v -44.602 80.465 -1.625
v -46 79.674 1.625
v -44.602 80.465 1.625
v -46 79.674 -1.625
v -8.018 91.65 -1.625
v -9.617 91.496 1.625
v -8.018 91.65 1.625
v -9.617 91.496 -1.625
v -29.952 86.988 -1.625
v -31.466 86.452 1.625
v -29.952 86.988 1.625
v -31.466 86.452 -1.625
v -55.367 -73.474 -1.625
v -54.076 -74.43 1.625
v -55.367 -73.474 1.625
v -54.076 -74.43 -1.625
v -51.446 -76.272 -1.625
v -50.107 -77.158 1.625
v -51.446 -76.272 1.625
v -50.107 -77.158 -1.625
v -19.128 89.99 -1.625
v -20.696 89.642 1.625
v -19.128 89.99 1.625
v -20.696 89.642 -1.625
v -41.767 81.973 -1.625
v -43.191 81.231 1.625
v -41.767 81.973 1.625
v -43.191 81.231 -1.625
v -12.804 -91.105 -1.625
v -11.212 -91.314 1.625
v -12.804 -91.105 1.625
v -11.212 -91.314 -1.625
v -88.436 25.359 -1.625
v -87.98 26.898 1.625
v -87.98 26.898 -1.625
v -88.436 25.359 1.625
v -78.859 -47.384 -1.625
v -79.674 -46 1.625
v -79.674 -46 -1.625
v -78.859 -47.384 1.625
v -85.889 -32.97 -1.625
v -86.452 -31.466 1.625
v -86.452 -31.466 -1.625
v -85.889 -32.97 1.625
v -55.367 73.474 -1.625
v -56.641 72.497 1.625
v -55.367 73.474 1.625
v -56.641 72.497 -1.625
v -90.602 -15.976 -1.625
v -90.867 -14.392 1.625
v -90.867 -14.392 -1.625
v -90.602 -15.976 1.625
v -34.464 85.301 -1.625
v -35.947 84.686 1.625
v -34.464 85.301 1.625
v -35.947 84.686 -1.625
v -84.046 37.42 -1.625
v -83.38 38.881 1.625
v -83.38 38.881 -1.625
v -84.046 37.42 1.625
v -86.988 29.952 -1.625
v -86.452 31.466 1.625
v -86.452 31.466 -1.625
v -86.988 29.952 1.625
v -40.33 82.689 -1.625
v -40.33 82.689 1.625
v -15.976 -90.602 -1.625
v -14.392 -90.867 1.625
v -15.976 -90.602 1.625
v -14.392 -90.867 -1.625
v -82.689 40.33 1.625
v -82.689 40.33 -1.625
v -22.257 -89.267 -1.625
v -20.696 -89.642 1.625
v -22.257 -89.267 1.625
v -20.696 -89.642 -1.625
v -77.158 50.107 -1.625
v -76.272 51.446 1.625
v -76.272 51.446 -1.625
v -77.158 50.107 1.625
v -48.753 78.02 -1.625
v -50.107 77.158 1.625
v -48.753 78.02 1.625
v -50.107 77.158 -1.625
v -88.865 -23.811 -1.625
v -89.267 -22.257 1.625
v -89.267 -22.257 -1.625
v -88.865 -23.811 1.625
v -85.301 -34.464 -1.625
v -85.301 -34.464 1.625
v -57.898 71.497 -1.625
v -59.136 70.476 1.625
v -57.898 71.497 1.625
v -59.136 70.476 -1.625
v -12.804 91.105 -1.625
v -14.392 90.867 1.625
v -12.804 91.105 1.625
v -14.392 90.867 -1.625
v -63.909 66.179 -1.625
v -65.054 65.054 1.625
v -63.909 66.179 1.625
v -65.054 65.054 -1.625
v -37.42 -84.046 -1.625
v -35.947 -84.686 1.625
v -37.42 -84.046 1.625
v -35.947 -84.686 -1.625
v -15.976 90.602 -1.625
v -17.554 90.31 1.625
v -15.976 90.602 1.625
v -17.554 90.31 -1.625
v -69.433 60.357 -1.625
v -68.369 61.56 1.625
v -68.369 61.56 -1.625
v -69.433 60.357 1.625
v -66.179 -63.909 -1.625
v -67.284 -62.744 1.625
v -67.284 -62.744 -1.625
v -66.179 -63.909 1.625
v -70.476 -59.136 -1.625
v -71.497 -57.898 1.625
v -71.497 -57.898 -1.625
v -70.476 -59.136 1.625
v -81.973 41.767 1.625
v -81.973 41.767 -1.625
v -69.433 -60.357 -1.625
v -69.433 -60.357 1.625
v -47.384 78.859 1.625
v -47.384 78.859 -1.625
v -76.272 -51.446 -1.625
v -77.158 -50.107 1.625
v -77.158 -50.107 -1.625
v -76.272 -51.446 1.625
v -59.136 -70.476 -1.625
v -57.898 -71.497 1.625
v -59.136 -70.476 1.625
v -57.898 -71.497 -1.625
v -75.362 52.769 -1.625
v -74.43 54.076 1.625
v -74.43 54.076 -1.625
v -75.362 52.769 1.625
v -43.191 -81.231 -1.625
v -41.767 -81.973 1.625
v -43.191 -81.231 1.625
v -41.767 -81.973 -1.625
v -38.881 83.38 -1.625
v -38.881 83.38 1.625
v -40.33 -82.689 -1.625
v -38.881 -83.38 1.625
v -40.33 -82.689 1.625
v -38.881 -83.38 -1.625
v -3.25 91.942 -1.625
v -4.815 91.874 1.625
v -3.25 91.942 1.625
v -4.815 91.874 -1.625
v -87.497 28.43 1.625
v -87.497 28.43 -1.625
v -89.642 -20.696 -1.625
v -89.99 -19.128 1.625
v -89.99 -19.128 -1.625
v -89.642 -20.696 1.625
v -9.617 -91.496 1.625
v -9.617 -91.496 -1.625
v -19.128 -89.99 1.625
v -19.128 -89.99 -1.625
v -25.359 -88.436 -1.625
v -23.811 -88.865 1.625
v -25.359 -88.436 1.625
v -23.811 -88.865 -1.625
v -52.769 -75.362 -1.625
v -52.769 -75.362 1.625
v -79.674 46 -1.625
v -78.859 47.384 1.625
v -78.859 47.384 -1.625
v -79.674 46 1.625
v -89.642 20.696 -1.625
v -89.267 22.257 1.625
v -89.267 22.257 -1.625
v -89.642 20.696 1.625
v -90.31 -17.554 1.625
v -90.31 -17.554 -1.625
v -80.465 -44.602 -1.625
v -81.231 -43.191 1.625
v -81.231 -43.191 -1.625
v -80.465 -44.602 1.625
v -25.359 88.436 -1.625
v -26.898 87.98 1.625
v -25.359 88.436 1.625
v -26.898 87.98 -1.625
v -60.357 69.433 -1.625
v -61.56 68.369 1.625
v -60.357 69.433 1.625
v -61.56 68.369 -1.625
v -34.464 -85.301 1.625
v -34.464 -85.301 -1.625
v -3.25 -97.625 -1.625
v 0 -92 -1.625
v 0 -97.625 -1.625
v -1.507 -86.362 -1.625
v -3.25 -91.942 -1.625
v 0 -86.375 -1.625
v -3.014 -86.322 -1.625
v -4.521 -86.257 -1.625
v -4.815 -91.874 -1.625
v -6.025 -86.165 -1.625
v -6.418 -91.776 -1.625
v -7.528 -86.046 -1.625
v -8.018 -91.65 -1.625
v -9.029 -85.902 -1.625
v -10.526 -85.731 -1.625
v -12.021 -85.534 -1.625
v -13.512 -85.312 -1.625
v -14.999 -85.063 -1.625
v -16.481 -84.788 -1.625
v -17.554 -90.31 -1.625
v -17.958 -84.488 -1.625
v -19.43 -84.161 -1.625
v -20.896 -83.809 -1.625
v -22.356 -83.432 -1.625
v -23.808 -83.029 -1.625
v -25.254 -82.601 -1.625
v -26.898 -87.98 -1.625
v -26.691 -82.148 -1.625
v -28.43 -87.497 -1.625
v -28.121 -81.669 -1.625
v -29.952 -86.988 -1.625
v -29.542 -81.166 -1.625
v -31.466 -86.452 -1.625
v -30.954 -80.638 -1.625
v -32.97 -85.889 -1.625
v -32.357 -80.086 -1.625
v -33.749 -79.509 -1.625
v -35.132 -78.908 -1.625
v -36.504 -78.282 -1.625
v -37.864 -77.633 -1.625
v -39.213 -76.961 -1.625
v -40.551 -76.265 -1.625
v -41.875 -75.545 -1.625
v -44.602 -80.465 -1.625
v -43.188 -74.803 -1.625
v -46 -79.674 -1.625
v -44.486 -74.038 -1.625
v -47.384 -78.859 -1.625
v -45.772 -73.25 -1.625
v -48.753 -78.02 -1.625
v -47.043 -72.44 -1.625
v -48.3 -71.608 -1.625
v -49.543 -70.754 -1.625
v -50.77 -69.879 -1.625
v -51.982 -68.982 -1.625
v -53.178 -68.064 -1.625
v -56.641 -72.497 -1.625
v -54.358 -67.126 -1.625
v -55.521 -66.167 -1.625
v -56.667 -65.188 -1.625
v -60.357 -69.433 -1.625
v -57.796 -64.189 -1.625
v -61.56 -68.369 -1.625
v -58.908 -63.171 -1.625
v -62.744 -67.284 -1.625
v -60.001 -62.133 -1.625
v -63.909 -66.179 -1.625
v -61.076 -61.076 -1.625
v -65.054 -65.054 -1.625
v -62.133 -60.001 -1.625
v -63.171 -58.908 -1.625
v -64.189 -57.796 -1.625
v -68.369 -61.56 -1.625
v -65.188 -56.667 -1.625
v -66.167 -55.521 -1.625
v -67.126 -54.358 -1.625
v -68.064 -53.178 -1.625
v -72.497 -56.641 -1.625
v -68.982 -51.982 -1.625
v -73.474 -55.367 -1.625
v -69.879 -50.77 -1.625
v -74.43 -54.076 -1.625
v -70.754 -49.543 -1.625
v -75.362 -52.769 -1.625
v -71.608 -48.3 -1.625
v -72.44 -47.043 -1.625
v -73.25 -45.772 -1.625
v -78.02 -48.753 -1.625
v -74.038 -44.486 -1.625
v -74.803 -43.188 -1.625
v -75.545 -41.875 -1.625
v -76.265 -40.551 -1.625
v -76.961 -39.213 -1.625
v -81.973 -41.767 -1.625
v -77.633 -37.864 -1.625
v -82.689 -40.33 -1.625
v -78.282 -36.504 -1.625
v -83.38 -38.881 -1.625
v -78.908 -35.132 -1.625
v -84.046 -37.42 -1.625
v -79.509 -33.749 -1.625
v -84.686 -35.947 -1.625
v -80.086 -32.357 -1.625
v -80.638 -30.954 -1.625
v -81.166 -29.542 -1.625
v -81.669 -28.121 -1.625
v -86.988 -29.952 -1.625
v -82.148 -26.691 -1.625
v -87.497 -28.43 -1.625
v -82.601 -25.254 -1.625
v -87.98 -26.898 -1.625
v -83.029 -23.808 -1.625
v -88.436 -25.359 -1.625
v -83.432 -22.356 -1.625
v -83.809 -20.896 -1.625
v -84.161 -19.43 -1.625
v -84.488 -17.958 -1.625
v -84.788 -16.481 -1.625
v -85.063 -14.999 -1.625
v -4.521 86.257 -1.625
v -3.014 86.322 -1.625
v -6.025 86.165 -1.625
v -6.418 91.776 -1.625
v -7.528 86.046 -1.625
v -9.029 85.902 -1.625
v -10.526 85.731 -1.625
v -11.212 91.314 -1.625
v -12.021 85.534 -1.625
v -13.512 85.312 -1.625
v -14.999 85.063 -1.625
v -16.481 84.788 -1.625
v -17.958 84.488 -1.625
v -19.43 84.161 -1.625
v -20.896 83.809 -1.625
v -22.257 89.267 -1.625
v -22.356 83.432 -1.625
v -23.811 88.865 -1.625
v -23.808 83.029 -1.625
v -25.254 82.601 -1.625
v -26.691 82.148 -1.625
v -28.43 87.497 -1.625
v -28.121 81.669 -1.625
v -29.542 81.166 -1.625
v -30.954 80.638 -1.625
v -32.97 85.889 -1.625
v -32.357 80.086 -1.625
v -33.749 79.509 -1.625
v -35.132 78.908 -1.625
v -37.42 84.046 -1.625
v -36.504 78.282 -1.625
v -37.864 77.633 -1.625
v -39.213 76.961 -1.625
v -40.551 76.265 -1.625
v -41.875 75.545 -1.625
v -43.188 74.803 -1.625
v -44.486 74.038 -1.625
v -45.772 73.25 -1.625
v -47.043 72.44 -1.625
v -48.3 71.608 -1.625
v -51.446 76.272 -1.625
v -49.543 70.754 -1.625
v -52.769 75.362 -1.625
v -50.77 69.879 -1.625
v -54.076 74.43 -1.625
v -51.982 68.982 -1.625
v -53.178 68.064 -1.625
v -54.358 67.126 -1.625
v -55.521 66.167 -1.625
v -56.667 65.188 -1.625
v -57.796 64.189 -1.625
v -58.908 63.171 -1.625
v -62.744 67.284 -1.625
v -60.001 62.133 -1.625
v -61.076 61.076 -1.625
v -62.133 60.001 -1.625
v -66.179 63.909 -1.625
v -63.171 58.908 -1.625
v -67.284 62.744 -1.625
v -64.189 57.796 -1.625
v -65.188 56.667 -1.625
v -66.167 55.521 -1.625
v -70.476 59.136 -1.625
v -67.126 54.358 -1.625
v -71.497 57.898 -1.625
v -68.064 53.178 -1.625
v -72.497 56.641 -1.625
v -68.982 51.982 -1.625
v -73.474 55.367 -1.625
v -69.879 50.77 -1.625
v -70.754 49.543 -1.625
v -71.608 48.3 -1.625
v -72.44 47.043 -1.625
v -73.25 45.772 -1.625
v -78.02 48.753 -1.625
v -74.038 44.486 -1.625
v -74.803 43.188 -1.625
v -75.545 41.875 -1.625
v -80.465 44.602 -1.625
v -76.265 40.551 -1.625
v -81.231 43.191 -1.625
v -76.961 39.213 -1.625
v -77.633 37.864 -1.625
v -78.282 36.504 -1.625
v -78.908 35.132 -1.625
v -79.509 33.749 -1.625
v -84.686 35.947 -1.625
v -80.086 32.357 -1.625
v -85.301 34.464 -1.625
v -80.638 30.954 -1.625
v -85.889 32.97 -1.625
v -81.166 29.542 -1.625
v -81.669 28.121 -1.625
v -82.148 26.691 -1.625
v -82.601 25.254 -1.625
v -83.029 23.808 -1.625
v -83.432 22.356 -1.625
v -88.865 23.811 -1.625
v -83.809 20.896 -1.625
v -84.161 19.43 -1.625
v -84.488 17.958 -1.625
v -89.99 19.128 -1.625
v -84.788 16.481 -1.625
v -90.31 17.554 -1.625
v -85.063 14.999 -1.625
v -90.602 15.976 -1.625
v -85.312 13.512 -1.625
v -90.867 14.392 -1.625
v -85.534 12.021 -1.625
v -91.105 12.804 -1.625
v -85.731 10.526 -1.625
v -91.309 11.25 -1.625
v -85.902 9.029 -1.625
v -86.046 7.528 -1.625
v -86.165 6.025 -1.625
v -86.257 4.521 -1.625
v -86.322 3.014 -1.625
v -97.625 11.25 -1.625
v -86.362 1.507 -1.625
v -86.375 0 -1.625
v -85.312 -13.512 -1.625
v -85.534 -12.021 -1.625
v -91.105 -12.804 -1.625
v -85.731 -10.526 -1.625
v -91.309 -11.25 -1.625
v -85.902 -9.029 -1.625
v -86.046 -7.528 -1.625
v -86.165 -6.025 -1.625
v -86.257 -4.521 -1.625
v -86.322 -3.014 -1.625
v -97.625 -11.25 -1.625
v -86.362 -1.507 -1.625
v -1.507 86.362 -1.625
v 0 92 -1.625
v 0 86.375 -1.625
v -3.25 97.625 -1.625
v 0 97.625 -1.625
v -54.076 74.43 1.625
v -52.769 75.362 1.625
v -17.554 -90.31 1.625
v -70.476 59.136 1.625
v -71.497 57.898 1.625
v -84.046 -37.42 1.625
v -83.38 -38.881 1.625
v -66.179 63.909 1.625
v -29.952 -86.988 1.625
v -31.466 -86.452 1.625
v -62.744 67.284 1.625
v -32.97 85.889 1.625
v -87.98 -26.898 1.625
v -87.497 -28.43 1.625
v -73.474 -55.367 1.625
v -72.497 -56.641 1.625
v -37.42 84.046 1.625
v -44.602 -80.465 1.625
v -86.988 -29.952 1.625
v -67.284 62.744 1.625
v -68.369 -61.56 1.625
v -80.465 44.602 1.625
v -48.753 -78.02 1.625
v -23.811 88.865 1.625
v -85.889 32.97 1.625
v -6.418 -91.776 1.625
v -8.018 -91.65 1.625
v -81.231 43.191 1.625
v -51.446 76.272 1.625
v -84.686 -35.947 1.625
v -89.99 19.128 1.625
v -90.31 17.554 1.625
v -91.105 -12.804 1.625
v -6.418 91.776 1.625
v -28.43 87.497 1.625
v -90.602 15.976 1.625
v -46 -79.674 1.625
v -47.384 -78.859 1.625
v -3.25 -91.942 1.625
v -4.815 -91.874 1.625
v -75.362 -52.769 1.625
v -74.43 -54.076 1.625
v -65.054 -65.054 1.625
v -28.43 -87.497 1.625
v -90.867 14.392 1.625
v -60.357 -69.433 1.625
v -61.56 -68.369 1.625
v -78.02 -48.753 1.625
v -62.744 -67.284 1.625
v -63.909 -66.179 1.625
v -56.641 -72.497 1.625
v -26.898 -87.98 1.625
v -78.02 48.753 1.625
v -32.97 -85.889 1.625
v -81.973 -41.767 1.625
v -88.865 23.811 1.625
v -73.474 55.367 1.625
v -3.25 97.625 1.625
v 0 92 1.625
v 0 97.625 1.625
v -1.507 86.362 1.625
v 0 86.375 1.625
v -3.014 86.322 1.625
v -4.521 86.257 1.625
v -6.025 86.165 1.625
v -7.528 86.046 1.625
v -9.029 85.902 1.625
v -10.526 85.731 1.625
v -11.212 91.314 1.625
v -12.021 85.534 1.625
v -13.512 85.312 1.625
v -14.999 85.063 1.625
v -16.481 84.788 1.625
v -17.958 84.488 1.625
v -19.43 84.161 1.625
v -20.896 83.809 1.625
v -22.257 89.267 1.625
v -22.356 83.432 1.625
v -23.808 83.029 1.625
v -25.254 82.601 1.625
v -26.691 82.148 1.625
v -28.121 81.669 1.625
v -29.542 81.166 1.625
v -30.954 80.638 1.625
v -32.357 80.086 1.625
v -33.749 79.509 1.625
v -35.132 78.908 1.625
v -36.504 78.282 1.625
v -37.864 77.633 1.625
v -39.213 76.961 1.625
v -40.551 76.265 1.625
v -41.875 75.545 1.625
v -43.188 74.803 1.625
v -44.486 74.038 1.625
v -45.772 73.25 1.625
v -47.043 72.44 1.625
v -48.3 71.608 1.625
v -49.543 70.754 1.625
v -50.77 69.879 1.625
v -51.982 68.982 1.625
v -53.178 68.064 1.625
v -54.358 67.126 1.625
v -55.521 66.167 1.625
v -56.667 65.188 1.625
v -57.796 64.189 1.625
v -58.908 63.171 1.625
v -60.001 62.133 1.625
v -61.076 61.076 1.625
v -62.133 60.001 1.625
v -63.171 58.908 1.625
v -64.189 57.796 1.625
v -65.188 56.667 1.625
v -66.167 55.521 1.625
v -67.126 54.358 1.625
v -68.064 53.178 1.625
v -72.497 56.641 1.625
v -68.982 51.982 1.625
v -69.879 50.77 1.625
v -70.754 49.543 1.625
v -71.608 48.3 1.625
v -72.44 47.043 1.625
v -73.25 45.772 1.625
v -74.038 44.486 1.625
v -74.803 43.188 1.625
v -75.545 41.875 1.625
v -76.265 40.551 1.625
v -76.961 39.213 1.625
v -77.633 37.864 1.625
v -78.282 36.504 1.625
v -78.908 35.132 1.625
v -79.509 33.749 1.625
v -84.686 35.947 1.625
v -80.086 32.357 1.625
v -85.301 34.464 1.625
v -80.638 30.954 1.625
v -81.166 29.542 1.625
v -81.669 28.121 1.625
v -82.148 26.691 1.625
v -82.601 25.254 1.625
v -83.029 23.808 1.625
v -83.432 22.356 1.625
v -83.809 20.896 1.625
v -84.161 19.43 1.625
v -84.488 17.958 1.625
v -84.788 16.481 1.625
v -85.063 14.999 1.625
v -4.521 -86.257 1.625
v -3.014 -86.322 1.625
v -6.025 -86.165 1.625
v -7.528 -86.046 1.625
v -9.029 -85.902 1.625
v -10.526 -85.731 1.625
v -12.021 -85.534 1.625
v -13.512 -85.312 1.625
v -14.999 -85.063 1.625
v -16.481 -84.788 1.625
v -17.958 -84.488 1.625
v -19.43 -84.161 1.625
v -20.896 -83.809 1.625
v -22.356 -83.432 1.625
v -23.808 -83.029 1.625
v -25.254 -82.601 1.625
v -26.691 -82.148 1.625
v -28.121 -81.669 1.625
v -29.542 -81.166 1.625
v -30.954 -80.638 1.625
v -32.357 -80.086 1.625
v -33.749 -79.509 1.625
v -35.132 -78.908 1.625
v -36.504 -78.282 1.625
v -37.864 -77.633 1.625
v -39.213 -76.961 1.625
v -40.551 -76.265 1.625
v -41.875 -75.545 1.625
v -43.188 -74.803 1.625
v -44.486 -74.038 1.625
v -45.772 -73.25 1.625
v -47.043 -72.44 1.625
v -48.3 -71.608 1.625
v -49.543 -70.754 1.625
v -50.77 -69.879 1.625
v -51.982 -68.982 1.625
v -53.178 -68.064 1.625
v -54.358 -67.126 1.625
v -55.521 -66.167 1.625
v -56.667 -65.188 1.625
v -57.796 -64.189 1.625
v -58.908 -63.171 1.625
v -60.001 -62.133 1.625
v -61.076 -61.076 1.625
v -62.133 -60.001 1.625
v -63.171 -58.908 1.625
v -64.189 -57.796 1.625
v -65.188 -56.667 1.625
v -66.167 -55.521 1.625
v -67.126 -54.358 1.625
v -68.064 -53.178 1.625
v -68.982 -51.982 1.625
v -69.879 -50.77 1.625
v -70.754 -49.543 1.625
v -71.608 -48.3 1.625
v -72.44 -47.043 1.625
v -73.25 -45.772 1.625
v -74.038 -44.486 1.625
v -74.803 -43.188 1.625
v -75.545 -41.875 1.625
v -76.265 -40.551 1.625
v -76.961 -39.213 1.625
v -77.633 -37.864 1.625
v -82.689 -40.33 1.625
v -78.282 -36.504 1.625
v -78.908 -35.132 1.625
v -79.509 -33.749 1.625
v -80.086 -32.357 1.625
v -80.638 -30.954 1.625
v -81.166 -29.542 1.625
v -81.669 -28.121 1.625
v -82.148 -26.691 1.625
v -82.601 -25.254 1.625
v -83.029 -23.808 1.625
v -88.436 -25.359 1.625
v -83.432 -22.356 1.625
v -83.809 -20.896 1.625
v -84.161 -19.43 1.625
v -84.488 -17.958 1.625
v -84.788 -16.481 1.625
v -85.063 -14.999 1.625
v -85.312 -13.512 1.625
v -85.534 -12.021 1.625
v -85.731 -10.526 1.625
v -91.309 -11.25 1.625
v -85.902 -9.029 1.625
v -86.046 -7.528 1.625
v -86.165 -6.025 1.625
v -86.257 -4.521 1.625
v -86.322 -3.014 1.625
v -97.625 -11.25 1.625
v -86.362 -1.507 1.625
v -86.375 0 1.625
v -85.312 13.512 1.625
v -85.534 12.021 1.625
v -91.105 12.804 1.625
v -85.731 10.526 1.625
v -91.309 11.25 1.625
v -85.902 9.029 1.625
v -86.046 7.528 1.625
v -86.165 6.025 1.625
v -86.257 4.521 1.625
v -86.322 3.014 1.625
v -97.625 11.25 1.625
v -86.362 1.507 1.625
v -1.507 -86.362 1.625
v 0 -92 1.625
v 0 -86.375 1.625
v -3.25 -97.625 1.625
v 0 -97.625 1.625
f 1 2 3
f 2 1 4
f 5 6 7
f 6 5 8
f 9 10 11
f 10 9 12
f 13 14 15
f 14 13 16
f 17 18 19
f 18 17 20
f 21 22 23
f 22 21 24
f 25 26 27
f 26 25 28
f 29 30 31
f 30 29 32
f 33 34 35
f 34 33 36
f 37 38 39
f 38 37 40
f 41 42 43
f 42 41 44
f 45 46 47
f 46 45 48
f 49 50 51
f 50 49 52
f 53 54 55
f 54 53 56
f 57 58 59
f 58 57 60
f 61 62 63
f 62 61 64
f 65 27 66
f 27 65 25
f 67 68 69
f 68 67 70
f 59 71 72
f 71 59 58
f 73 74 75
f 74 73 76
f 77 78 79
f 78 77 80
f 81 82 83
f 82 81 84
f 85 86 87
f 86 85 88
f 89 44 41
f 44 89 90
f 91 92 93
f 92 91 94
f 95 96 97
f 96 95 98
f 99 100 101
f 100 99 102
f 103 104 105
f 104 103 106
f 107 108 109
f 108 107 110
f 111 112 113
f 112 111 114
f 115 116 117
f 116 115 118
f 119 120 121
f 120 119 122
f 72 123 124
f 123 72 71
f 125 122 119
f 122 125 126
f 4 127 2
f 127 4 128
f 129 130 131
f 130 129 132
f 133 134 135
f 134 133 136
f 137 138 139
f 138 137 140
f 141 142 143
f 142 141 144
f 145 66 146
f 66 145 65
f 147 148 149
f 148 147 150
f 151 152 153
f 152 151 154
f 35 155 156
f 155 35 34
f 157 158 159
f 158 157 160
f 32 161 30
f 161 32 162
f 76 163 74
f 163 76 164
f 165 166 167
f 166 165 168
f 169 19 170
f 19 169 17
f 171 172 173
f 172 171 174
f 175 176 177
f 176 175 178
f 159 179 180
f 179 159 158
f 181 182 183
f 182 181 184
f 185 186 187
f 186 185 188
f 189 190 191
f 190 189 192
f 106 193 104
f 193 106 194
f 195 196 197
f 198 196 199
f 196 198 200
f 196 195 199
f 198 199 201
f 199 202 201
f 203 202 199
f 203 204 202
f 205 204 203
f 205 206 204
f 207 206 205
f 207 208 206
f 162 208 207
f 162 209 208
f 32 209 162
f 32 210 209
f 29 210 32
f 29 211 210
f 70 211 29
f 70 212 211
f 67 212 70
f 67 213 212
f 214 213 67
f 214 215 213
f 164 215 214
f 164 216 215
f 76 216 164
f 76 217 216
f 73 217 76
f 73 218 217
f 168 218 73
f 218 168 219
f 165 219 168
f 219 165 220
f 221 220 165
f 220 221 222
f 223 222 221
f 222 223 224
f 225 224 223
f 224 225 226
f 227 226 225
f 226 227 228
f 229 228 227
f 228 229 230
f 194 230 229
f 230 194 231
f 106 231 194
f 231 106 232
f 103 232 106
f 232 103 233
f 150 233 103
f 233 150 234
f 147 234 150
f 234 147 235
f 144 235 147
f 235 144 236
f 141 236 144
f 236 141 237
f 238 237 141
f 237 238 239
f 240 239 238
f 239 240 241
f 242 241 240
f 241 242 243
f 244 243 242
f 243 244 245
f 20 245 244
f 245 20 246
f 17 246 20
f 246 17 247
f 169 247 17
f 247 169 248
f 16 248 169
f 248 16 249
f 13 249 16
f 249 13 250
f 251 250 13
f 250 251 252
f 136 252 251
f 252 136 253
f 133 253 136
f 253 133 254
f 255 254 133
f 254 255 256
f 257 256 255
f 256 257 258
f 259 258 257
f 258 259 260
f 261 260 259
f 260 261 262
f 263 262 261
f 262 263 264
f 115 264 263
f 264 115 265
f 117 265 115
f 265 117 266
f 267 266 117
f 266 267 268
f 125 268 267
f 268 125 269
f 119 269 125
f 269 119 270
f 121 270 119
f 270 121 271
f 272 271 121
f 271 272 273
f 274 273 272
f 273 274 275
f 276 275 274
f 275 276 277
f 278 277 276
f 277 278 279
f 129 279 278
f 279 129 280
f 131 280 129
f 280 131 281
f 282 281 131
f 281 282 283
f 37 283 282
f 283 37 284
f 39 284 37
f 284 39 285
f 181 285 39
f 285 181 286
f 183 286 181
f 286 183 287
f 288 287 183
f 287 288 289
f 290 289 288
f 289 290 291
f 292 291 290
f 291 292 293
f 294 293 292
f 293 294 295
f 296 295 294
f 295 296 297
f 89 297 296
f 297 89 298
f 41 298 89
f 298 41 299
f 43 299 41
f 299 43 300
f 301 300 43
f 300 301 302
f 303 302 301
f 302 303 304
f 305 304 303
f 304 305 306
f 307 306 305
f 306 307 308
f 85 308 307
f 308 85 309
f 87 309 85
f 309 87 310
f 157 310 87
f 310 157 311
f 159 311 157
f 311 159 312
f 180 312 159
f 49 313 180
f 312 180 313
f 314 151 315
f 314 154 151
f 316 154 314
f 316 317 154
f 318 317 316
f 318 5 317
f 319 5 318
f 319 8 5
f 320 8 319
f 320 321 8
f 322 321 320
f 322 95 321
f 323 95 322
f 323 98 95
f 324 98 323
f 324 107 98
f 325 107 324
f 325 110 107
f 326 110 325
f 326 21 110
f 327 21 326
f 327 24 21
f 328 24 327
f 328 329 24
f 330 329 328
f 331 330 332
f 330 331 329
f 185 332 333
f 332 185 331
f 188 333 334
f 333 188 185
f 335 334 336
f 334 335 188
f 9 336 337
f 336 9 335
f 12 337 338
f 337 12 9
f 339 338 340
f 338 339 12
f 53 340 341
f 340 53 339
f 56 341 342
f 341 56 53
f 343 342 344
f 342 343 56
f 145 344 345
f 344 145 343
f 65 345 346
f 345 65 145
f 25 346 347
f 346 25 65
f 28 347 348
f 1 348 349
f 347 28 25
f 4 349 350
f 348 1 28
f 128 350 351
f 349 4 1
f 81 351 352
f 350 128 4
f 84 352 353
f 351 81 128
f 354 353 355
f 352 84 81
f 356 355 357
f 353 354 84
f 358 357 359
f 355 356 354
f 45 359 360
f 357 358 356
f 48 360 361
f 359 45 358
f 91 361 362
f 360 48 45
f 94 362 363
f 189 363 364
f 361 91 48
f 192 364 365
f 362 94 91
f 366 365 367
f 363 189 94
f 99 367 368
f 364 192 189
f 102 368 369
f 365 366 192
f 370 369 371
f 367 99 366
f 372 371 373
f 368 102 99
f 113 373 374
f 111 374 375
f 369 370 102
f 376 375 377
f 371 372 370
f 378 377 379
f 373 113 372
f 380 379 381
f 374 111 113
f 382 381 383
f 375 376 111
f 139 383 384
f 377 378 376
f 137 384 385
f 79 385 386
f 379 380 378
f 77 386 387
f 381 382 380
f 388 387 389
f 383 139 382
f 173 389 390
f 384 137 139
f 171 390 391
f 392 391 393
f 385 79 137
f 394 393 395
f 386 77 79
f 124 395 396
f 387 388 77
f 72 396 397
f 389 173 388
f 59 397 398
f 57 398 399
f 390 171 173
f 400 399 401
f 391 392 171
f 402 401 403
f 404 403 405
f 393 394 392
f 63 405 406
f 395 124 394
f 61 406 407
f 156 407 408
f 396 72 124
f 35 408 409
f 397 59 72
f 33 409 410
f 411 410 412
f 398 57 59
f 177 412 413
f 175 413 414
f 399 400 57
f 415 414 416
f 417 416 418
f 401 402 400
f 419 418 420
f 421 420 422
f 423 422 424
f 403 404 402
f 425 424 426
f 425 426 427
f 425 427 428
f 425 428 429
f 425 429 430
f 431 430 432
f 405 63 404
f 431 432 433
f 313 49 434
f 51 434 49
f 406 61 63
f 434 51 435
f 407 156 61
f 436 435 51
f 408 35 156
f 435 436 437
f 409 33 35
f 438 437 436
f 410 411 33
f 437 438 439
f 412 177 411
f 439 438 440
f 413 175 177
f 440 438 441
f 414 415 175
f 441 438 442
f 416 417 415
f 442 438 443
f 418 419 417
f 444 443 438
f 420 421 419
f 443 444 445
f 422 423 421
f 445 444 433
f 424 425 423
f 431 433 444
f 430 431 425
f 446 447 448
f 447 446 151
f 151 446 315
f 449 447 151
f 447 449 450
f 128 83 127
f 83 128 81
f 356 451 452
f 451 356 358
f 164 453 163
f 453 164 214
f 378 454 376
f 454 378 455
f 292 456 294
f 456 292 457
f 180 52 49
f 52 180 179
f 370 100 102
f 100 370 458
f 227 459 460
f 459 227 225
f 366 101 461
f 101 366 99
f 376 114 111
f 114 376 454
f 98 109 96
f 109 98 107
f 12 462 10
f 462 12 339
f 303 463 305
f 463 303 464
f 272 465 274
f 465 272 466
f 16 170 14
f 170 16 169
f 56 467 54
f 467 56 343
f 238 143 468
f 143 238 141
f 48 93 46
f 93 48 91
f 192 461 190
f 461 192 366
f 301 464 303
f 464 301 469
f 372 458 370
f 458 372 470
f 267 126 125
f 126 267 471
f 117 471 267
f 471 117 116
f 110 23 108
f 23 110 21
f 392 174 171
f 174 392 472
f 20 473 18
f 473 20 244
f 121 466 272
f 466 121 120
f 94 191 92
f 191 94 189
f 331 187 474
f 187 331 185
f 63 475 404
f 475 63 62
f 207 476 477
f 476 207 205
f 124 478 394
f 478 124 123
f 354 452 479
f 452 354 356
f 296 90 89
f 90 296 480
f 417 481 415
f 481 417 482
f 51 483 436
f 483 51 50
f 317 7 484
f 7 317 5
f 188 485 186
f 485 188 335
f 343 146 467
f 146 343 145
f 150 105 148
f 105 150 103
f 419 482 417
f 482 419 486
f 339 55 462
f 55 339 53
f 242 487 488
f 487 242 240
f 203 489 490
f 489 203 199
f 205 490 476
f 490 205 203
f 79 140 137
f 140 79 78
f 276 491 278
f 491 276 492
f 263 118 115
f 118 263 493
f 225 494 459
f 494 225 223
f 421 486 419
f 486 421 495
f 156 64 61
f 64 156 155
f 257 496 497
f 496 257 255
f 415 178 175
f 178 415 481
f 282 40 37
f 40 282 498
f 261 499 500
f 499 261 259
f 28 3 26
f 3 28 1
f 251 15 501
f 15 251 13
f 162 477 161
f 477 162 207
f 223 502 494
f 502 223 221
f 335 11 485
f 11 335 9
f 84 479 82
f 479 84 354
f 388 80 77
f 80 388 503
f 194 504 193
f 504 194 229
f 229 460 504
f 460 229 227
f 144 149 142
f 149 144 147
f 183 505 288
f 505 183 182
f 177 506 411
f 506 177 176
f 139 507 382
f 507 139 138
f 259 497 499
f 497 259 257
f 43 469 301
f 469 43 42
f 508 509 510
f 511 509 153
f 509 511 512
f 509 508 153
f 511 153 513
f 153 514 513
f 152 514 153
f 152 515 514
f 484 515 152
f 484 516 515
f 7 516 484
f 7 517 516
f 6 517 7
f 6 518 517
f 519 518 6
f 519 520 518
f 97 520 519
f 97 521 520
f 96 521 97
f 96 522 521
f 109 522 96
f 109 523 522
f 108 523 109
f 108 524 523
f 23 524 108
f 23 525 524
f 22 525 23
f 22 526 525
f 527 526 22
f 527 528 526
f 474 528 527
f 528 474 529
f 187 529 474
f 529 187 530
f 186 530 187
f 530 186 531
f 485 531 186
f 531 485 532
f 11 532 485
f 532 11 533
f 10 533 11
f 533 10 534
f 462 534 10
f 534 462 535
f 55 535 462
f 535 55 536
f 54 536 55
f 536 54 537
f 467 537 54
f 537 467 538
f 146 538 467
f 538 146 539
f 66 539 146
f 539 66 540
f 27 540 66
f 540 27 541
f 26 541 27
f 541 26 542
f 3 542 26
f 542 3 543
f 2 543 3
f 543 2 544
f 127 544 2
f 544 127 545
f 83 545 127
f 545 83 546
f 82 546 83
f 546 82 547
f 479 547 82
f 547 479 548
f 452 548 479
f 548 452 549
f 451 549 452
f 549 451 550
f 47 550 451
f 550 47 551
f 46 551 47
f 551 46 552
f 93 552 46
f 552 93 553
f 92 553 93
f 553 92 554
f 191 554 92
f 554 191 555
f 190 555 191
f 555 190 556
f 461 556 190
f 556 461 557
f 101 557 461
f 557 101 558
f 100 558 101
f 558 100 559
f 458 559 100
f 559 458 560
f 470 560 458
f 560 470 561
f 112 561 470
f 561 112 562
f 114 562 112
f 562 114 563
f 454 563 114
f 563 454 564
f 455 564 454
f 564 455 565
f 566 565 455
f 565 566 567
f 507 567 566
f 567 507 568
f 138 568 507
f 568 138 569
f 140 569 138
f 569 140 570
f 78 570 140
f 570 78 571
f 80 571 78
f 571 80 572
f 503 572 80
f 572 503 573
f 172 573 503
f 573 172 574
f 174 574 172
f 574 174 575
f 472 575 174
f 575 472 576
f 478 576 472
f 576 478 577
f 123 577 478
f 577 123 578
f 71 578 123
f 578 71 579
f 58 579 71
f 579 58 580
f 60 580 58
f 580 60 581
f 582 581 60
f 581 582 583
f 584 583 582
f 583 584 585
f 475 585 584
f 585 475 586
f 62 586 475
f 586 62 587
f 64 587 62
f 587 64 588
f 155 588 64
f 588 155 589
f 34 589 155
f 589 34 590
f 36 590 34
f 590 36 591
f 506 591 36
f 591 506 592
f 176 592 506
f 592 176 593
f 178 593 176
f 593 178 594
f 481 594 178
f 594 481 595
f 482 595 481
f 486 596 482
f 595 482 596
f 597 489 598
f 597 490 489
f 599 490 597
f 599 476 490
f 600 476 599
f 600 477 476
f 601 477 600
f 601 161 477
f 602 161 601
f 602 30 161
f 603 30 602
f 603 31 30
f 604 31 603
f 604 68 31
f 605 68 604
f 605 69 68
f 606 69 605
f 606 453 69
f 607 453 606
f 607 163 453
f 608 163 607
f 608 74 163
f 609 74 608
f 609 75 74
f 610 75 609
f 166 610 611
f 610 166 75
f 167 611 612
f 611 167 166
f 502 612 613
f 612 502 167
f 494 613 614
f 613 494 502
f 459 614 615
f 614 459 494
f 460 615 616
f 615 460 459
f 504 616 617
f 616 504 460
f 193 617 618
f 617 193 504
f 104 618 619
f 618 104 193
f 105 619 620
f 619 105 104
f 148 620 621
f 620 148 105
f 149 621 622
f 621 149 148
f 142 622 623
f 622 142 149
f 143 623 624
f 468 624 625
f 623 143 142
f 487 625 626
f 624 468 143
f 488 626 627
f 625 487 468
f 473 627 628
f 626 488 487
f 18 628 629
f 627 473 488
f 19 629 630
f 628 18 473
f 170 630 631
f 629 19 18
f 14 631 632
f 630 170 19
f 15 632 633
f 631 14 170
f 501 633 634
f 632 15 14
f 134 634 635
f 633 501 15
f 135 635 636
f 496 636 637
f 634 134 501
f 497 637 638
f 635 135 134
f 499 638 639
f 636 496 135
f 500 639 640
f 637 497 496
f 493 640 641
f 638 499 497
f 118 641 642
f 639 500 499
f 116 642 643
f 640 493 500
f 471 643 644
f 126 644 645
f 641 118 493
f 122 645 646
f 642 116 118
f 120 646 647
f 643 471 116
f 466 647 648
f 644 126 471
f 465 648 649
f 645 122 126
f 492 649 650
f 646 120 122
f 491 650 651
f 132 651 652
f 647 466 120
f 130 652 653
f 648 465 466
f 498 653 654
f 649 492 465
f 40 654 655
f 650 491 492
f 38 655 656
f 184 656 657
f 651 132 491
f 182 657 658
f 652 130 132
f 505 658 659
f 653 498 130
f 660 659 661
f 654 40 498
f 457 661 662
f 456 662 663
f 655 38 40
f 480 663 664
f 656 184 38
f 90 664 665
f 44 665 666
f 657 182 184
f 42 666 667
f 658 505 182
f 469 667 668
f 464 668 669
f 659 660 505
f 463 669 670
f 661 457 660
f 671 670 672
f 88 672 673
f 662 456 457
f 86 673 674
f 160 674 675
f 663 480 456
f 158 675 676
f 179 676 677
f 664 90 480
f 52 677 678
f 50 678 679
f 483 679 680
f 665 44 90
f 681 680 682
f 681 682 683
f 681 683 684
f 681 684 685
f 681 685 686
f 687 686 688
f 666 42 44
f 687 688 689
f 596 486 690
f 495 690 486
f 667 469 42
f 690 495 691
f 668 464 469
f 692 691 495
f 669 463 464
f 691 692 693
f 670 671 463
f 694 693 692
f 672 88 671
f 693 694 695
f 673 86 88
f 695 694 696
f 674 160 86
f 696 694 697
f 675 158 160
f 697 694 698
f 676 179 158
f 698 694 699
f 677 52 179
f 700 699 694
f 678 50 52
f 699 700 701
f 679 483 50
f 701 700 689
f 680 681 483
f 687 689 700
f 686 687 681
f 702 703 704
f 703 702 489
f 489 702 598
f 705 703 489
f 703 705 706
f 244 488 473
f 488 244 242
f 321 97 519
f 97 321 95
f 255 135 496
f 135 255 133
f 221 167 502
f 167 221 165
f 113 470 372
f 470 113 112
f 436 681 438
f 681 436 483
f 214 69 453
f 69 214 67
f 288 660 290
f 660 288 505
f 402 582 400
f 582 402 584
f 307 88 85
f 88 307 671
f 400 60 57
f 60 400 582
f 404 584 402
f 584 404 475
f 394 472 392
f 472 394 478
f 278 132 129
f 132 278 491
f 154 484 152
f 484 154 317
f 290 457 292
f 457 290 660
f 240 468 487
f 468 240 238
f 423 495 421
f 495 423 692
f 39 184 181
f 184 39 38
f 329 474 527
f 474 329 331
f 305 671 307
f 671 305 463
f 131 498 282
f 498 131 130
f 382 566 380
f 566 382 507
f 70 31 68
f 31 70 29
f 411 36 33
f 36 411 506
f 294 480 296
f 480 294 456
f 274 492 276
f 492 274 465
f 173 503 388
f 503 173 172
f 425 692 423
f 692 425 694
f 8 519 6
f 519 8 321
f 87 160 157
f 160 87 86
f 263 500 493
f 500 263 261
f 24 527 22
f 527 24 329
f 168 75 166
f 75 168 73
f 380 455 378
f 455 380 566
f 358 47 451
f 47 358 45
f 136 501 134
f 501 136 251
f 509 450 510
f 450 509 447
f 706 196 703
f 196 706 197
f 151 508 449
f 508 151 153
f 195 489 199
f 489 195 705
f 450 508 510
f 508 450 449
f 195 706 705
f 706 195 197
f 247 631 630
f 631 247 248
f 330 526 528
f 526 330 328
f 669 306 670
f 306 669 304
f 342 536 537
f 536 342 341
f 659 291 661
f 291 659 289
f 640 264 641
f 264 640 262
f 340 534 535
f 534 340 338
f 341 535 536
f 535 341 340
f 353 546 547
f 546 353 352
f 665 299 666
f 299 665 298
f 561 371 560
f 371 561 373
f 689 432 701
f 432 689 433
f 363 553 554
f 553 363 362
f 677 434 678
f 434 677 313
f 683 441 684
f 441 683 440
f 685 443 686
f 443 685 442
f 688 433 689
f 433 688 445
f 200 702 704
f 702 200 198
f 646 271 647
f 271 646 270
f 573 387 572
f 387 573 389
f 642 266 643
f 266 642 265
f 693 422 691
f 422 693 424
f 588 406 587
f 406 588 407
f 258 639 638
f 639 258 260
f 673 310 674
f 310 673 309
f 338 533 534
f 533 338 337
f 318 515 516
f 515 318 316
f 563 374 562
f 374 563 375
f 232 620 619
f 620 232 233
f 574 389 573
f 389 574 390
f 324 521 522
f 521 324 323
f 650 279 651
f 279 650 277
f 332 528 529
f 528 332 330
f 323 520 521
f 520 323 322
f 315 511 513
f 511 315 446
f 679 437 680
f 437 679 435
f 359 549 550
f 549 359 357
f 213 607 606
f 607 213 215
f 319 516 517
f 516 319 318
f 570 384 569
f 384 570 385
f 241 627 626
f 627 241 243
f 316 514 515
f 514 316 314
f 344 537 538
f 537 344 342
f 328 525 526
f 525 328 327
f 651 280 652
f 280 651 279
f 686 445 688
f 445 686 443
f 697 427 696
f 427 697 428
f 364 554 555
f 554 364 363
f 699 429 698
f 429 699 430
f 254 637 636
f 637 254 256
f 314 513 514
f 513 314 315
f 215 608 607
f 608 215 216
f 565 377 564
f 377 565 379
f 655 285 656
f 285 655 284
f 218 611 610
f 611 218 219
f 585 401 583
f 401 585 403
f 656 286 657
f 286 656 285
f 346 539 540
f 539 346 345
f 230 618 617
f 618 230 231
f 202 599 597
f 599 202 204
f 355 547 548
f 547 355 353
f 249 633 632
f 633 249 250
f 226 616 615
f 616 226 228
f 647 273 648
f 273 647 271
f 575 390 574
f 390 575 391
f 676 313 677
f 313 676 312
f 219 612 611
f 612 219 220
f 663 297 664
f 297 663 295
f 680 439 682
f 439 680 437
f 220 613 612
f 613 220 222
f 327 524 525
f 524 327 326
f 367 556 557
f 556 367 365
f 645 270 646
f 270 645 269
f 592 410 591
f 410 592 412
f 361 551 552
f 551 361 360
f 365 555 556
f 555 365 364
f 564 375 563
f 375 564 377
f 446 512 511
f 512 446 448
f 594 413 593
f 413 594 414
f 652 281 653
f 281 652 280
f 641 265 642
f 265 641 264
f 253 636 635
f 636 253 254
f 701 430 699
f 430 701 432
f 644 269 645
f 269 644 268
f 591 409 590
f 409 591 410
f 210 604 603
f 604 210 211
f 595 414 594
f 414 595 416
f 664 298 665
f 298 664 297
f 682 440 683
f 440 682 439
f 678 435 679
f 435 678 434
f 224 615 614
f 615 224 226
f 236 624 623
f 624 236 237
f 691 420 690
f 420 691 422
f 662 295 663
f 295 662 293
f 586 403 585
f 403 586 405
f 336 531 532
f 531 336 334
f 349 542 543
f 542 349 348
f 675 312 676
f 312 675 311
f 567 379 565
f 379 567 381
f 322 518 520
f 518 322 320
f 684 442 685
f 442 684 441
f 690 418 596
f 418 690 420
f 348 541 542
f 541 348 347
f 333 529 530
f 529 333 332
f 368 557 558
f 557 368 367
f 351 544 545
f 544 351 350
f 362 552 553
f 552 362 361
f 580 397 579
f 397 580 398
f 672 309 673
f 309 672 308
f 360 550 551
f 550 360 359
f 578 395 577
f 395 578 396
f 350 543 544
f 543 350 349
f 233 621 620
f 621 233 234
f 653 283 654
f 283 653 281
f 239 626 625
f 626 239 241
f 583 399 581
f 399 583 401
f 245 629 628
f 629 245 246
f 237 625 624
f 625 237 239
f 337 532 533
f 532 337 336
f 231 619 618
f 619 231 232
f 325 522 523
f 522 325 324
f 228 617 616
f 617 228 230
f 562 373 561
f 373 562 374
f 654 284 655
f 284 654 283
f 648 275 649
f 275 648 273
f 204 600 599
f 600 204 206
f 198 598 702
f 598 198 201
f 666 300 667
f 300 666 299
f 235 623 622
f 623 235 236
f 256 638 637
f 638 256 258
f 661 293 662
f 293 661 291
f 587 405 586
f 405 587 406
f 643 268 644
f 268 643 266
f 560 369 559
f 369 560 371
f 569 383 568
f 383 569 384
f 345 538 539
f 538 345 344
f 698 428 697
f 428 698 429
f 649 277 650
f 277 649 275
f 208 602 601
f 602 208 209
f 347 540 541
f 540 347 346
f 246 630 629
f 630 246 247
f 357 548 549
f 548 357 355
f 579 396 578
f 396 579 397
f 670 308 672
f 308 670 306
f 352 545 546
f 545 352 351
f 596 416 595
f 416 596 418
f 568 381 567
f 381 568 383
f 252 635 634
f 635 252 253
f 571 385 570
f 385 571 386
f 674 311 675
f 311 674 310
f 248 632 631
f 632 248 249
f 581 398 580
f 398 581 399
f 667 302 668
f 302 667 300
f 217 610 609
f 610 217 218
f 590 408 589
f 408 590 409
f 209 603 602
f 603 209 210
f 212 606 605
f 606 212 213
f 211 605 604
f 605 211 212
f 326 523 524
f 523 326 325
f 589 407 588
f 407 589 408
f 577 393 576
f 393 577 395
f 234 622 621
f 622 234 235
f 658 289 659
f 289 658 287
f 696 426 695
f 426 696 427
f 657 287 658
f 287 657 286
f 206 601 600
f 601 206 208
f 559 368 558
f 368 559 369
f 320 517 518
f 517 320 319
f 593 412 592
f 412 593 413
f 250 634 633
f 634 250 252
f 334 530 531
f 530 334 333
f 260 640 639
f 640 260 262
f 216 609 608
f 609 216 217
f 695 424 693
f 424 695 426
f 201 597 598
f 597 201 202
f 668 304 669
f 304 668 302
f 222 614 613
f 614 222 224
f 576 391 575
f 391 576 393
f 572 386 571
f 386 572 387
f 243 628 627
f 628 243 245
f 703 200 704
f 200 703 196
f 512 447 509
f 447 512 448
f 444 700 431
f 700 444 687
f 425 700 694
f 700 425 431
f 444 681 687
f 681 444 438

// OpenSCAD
$fa = 1.0;
$fs = 0.5;
union () {
  difference () {
    union () {
      cylinder (h=3.25, r=92, center=true);
      translate ([-1.625, 0, 0]) {
        cube ([3.25, 195.25, 3.25], center=true);
      }
    }
    cylinder (h=3.25, r=86.375, center=true);
    translate ([46, 0, 0]) {
      cube ([92, 184, 3.25], center=true);
    }
  }
  translate ([-92, 0, 0]) {
    cube ([11.25, 22.5, 3.25], center=true);
  }
}
